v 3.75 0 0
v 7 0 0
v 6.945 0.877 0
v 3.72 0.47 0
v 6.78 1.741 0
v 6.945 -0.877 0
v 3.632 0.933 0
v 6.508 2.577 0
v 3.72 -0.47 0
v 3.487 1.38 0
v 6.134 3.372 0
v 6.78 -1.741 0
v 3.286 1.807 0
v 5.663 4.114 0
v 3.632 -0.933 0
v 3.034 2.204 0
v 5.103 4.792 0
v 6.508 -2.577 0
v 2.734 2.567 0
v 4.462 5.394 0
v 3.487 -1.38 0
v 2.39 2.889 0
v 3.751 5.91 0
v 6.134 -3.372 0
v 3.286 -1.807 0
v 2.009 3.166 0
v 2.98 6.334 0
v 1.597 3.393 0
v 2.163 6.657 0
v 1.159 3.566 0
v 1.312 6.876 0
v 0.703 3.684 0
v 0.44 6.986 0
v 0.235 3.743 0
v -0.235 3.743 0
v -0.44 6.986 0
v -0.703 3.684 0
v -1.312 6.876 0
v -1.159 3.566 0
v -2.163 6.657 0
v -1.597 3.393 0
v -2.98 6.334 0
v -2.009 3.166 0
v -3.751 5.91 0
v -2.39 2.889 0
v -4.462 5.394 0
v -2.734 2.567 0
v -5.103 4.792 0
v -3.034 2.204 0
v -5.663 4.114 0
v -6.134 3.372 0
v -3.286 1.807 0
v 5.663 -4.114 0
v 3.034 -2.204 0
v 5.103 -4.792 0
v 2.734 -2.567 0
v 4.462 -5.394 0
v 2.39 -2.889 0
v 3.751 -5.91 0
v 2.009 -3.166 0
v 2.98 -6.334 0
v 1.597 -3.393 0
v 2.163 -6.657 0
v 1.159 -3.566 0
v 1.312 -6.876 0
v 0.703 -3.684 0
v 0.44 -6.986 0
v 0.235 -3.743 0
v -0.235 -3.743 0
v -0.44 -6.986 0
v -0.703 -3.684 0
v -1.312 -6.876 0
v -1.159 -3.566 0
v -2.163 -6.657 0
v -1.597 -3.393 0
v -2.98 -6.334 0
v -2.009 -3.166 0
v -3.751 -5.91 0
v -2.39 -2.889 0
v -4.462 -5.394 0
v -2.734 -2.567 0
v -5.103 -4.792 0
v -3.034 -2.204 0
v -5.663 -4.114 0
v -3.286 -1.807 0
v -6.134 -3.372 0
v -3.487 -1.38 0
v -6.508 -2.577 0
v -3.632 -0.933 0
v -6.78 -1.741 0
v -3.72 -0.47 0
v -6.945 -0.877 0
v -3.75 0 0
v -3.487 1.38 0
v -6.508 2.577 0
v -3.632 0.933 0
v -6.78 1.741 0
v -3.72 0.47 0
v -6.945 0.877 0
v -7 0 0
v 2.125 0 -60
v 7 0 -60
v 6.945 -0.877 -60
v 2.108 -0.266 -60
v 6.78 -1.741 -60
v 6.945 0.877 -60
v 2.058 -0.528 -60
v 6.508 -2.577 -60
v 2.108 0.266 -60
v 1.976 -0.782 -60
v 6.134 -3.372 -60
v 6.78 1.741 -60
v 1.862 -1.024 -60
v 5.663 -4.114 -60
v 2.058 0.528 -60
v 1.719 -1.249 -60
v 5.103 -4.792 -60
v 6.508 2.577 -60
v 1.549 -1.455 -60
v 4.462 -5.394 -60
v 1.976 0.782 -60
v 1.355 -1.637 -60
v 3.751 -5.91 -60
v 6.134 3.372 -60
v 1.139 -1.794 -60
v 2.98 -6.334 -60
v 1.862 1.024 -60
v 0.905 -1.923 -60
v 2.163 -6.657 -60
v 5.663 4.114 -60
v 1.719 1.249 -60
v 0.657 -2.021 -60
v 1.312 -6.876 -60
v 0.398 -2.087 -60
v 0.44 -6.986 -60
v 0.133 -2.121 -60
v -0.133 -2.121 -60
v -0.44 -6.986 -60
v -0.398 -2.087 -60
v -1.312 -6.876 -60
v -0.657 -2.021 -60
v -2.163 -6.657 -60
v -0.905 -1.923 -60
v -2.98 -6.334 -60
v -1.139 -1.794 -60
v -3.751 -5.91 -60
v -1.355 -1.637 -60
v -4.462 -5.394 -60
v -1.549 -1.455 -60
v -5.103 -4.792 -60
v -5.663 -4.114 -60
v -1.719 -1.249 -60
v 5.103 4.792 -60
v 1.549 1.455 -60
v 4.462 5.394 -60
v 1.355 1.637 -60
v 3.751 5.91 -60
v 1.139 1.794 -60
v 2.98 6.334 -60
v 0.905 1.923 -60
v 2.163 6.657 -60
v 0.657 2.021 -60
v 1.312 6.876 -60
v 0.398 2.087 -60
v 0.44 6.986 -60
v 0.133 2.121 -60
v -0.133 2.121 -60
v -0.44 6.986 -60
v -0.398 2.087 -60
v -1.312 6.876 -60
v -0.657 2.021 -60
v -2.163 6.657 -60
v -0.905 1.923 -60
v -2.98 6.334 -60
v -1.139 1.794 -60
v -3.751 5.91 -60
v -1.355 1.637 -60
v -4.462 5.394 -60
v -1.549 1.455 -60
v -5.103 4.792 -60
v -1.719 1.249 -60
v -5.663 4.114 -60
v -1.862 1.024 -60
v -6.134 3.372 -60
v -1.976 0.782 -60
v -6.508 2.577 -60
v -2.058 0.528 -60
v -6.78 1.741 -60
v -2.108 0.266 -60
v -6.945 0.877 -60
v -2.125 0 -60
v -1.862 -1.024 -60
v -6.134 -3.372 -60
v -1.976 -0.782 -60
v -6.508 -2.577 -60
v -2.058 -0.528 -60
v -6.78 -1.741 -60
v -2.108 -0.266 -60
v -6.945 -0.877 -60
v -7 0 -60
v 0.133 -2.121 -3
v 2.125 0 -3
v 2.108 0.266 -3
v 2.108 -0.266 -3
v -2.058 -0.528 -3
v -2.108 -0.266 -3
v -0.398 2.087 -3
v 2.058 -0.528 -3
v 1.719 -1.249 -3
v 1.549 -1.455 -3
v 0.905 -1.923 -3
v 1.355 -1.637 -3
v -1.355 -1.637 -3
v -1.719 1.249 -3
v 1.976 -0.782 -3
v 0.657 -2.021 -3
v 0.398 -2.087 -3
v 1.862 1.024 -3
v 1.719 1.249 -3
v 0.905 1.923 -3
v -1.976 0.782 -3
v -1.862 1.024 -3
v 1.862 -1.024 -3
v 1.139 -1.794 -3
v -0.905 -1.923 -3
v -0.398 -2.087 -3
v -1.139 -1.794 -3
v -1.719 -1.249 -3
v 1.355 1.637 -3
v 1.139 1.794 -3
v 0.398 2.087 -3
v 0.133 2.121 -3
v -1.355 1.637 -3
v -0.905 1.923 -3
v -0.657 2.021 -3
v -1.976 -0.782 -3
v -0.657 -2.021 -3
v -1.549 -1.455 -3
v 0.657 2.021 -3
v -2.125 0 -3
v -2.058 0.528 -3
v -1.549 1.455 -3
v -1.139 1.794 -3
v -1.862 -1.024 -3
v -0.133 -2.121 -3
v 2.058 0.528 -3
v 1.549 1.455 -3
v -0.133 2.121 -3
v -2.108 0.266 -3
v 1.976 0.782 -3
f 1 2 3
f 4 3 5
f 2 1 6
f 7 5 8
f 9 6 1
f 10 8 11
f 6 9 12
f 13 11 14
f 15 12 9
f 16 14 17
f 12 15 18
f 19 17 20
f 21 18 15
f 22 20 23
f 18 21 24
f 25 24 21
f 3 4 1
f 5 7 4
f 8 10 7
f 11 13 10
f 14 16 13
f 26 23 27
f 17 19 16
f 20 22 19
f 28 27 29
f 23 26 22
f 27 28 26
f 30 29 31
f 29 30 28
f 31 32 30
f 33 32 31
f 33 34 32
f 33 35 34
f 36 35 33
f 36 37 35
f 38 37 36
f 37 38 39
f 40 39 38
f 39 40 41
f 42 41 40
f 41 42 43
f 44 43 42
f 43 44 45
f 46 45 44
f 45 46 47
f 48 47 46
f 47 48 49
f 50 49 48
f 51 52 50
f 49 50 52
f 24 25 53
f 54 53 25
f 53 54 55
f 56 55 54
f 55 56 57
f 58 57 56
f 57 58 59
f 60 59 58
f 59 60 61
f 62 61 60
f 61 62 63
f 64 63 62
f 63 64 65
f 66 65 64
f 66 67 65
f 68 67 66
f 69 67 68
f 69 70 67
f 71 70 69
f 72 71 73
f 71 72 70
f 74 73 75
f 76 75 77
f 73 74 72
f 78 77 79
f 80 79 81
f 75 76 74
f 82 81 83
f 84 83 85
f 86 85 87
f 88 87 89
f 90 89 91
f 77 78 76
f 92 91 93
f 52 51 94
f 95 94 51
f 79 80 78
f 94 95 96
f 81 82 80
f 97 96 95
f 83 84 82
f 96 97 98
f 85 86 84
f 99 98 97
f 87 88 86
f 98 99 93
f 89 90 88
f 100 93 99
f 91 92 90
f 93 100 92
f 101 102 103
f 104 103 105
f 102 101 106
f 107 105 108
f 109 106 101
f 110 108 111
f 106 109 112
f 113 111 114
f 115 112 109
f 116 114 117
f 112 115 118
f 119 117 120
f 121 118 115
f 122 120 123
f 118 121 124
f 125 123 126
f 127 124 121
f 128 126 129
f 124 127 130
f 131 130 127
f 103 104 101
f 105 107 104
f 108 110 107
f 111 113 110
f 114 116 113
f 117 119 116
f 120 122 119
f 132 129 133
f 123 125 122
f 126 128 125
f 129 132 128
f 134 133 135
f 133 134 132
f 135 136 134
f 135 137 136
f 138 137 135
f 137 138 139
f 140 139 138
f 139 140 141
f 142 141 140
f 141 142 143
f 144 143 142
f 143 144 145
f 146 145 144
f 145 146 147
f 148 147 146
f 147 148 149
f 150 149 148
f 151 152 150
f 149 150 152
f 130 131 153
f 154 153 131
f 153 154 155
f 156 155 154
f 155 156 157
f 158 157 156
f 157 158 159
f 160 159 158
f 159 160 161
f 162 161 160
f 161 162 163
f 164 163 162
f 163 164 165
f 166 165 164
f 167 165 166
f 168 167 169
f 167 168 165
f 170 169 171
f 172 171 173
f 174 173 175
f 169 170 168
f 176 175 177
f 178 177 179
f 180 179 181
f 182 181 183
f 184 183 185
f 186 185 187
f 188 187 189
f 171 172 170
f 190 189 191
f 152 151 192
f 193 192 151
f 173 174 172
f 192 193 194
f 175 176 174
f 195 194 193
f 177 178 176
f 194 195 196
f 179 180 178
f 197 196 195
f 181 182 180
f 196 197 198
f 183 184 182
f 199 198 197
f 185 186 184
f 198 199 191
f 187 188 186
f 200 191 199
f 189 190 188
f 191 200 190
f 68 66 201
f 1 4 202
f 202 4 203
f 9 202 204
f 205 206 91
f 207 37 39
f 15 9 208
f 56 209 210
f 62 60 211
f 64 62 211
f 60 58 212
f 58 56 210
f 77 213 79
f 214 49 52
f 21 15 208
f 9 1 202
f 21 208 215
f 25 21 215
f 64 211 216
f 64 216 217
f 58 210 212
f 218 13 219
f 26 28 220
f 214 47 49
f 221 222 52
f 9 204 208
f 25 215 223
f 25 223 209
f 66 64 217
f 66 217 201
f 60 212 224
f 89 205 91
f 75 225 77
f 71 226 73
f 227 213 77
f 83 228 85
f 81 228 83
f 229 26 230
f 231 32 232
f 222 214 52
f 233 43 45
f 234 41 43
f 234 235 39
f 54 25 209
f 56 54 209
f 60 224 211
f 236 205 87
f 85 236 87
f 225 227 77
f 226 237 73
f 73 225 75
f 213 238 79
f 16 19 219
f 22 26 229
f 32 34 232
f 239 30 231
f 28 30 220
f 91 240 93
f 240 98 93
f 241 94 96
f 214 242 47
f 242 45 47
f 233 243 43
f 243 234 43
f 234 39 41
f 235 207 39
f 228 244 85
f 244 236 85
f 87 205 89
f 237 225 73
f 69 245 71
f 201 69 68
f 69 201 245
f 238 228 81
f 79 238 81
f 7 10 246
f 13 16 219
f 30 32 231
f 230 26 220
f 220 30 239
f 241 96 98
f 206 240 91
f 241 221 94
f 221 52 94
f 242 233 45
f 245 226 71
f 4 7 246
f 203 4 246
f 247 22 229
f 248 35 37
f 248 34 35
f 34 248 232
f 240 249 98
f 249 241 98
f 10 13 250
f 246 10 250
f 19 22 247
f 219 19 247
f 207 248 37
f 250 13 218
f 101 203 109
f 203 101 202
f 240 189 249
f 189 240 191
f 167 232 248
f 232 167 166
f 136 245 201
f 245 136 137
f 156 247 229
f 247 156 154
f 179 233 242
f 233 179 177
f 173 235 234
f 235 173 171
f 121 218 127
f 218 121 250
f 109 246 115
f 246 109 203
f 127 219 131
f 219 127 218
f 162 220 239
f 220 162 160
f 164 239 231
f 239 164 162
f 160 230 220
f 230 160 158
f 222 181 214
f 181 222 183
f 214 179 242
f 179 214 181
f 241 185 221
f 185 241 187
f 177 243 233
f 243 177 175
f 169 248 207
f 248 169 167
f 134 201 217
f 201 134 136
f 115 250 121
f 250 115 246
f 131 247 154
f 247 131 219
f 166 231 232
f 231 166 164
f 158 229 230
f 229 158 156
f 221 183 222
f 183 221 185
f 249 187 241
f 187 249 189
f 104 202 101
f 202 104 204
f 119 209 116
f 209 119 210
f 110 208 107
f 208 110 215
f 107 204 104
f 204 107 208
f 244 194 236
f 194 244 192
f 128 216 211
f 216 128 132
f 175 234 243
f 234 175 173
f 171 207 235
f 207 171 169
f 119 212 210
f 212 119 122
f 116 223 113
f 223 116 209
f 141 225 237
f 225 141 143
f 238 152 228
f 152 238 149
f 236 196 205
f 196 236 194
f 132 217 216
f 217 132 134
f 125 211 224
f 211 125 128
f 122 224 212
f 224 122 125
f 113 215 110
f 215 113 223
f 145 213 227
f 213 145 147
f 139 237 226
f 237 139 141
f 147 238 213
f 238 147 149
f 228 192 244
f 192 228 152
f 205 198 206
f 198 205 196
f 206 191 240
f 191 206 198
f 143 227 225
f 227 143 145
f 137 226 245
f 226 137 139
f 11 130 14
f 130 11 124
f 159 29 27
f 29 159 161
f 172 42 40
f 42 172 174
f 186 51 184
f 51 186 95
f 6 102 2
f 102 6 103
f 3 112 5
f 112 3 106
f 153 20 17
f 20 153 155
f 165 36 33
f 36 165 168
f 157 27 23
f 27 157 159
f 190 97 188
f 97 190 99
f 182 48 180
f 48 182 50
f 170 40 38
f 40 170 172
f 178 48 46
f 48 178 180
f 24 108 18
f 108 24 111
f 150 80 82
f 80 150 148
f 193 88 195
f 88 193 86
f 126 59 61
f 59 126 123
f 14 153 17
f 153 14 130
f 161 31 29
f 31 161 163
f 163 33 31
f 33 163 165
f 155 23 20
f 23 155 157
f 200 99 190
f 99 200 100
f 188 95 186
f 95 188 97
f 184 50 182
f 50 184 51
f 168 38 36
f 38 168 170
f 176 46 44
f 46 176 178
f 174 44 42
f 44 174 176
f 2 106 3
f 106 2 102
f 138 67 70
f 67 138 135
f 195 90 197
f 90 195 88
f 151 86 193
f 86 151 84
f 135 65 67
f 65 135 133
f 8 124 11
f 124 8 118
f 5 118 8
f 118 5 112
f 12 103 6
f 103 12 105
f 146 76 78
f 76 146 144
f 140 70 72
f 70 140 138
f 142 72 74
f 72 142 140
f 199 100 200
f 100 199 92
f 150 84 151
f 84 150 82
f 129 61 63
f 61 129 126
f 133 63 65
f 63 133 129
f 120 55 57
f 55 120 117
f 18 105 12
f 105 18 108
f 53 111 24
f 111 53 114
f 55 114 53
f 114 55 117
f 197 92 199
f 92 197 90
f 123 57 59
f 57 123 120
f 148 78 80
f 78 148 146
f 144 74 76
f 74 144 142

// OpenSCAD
$fn = 50;


difference() {
	union() {
		translate(v = [0, 0, -60.0000000000]) {
			cylinder(h = 60, r = 7.0000000000);
		}
		cylinder(h = 0, r = 13.0000000000);
	}
	union() {
		translate(v = [0, 0, 0]) {
			rotate(a = [0, 0, 0]) {
				difference() {
					union() {
						#translate(v = [0, 0, -60.0000000000]) {
							cylinder(h = 60, r = 2.0000000000);
						}
						#translate(v = [0, 0, -3]) {
							cylinder(h = 3, r = 7.0000000000, r1 = 2.1250000000, r2 = 3.7500000000);
						}
						#translate(v = [0, 0, -60.0000000000]) {
							cylinder(h = 60, r = 2.1250000000);
						}
						#translate(v = [0, 0, -60.0000000000]) {
							cylinder(h = 60, r = 2.0000000000);
						}
					}
					union();
				}
			}
		}
	}
}
